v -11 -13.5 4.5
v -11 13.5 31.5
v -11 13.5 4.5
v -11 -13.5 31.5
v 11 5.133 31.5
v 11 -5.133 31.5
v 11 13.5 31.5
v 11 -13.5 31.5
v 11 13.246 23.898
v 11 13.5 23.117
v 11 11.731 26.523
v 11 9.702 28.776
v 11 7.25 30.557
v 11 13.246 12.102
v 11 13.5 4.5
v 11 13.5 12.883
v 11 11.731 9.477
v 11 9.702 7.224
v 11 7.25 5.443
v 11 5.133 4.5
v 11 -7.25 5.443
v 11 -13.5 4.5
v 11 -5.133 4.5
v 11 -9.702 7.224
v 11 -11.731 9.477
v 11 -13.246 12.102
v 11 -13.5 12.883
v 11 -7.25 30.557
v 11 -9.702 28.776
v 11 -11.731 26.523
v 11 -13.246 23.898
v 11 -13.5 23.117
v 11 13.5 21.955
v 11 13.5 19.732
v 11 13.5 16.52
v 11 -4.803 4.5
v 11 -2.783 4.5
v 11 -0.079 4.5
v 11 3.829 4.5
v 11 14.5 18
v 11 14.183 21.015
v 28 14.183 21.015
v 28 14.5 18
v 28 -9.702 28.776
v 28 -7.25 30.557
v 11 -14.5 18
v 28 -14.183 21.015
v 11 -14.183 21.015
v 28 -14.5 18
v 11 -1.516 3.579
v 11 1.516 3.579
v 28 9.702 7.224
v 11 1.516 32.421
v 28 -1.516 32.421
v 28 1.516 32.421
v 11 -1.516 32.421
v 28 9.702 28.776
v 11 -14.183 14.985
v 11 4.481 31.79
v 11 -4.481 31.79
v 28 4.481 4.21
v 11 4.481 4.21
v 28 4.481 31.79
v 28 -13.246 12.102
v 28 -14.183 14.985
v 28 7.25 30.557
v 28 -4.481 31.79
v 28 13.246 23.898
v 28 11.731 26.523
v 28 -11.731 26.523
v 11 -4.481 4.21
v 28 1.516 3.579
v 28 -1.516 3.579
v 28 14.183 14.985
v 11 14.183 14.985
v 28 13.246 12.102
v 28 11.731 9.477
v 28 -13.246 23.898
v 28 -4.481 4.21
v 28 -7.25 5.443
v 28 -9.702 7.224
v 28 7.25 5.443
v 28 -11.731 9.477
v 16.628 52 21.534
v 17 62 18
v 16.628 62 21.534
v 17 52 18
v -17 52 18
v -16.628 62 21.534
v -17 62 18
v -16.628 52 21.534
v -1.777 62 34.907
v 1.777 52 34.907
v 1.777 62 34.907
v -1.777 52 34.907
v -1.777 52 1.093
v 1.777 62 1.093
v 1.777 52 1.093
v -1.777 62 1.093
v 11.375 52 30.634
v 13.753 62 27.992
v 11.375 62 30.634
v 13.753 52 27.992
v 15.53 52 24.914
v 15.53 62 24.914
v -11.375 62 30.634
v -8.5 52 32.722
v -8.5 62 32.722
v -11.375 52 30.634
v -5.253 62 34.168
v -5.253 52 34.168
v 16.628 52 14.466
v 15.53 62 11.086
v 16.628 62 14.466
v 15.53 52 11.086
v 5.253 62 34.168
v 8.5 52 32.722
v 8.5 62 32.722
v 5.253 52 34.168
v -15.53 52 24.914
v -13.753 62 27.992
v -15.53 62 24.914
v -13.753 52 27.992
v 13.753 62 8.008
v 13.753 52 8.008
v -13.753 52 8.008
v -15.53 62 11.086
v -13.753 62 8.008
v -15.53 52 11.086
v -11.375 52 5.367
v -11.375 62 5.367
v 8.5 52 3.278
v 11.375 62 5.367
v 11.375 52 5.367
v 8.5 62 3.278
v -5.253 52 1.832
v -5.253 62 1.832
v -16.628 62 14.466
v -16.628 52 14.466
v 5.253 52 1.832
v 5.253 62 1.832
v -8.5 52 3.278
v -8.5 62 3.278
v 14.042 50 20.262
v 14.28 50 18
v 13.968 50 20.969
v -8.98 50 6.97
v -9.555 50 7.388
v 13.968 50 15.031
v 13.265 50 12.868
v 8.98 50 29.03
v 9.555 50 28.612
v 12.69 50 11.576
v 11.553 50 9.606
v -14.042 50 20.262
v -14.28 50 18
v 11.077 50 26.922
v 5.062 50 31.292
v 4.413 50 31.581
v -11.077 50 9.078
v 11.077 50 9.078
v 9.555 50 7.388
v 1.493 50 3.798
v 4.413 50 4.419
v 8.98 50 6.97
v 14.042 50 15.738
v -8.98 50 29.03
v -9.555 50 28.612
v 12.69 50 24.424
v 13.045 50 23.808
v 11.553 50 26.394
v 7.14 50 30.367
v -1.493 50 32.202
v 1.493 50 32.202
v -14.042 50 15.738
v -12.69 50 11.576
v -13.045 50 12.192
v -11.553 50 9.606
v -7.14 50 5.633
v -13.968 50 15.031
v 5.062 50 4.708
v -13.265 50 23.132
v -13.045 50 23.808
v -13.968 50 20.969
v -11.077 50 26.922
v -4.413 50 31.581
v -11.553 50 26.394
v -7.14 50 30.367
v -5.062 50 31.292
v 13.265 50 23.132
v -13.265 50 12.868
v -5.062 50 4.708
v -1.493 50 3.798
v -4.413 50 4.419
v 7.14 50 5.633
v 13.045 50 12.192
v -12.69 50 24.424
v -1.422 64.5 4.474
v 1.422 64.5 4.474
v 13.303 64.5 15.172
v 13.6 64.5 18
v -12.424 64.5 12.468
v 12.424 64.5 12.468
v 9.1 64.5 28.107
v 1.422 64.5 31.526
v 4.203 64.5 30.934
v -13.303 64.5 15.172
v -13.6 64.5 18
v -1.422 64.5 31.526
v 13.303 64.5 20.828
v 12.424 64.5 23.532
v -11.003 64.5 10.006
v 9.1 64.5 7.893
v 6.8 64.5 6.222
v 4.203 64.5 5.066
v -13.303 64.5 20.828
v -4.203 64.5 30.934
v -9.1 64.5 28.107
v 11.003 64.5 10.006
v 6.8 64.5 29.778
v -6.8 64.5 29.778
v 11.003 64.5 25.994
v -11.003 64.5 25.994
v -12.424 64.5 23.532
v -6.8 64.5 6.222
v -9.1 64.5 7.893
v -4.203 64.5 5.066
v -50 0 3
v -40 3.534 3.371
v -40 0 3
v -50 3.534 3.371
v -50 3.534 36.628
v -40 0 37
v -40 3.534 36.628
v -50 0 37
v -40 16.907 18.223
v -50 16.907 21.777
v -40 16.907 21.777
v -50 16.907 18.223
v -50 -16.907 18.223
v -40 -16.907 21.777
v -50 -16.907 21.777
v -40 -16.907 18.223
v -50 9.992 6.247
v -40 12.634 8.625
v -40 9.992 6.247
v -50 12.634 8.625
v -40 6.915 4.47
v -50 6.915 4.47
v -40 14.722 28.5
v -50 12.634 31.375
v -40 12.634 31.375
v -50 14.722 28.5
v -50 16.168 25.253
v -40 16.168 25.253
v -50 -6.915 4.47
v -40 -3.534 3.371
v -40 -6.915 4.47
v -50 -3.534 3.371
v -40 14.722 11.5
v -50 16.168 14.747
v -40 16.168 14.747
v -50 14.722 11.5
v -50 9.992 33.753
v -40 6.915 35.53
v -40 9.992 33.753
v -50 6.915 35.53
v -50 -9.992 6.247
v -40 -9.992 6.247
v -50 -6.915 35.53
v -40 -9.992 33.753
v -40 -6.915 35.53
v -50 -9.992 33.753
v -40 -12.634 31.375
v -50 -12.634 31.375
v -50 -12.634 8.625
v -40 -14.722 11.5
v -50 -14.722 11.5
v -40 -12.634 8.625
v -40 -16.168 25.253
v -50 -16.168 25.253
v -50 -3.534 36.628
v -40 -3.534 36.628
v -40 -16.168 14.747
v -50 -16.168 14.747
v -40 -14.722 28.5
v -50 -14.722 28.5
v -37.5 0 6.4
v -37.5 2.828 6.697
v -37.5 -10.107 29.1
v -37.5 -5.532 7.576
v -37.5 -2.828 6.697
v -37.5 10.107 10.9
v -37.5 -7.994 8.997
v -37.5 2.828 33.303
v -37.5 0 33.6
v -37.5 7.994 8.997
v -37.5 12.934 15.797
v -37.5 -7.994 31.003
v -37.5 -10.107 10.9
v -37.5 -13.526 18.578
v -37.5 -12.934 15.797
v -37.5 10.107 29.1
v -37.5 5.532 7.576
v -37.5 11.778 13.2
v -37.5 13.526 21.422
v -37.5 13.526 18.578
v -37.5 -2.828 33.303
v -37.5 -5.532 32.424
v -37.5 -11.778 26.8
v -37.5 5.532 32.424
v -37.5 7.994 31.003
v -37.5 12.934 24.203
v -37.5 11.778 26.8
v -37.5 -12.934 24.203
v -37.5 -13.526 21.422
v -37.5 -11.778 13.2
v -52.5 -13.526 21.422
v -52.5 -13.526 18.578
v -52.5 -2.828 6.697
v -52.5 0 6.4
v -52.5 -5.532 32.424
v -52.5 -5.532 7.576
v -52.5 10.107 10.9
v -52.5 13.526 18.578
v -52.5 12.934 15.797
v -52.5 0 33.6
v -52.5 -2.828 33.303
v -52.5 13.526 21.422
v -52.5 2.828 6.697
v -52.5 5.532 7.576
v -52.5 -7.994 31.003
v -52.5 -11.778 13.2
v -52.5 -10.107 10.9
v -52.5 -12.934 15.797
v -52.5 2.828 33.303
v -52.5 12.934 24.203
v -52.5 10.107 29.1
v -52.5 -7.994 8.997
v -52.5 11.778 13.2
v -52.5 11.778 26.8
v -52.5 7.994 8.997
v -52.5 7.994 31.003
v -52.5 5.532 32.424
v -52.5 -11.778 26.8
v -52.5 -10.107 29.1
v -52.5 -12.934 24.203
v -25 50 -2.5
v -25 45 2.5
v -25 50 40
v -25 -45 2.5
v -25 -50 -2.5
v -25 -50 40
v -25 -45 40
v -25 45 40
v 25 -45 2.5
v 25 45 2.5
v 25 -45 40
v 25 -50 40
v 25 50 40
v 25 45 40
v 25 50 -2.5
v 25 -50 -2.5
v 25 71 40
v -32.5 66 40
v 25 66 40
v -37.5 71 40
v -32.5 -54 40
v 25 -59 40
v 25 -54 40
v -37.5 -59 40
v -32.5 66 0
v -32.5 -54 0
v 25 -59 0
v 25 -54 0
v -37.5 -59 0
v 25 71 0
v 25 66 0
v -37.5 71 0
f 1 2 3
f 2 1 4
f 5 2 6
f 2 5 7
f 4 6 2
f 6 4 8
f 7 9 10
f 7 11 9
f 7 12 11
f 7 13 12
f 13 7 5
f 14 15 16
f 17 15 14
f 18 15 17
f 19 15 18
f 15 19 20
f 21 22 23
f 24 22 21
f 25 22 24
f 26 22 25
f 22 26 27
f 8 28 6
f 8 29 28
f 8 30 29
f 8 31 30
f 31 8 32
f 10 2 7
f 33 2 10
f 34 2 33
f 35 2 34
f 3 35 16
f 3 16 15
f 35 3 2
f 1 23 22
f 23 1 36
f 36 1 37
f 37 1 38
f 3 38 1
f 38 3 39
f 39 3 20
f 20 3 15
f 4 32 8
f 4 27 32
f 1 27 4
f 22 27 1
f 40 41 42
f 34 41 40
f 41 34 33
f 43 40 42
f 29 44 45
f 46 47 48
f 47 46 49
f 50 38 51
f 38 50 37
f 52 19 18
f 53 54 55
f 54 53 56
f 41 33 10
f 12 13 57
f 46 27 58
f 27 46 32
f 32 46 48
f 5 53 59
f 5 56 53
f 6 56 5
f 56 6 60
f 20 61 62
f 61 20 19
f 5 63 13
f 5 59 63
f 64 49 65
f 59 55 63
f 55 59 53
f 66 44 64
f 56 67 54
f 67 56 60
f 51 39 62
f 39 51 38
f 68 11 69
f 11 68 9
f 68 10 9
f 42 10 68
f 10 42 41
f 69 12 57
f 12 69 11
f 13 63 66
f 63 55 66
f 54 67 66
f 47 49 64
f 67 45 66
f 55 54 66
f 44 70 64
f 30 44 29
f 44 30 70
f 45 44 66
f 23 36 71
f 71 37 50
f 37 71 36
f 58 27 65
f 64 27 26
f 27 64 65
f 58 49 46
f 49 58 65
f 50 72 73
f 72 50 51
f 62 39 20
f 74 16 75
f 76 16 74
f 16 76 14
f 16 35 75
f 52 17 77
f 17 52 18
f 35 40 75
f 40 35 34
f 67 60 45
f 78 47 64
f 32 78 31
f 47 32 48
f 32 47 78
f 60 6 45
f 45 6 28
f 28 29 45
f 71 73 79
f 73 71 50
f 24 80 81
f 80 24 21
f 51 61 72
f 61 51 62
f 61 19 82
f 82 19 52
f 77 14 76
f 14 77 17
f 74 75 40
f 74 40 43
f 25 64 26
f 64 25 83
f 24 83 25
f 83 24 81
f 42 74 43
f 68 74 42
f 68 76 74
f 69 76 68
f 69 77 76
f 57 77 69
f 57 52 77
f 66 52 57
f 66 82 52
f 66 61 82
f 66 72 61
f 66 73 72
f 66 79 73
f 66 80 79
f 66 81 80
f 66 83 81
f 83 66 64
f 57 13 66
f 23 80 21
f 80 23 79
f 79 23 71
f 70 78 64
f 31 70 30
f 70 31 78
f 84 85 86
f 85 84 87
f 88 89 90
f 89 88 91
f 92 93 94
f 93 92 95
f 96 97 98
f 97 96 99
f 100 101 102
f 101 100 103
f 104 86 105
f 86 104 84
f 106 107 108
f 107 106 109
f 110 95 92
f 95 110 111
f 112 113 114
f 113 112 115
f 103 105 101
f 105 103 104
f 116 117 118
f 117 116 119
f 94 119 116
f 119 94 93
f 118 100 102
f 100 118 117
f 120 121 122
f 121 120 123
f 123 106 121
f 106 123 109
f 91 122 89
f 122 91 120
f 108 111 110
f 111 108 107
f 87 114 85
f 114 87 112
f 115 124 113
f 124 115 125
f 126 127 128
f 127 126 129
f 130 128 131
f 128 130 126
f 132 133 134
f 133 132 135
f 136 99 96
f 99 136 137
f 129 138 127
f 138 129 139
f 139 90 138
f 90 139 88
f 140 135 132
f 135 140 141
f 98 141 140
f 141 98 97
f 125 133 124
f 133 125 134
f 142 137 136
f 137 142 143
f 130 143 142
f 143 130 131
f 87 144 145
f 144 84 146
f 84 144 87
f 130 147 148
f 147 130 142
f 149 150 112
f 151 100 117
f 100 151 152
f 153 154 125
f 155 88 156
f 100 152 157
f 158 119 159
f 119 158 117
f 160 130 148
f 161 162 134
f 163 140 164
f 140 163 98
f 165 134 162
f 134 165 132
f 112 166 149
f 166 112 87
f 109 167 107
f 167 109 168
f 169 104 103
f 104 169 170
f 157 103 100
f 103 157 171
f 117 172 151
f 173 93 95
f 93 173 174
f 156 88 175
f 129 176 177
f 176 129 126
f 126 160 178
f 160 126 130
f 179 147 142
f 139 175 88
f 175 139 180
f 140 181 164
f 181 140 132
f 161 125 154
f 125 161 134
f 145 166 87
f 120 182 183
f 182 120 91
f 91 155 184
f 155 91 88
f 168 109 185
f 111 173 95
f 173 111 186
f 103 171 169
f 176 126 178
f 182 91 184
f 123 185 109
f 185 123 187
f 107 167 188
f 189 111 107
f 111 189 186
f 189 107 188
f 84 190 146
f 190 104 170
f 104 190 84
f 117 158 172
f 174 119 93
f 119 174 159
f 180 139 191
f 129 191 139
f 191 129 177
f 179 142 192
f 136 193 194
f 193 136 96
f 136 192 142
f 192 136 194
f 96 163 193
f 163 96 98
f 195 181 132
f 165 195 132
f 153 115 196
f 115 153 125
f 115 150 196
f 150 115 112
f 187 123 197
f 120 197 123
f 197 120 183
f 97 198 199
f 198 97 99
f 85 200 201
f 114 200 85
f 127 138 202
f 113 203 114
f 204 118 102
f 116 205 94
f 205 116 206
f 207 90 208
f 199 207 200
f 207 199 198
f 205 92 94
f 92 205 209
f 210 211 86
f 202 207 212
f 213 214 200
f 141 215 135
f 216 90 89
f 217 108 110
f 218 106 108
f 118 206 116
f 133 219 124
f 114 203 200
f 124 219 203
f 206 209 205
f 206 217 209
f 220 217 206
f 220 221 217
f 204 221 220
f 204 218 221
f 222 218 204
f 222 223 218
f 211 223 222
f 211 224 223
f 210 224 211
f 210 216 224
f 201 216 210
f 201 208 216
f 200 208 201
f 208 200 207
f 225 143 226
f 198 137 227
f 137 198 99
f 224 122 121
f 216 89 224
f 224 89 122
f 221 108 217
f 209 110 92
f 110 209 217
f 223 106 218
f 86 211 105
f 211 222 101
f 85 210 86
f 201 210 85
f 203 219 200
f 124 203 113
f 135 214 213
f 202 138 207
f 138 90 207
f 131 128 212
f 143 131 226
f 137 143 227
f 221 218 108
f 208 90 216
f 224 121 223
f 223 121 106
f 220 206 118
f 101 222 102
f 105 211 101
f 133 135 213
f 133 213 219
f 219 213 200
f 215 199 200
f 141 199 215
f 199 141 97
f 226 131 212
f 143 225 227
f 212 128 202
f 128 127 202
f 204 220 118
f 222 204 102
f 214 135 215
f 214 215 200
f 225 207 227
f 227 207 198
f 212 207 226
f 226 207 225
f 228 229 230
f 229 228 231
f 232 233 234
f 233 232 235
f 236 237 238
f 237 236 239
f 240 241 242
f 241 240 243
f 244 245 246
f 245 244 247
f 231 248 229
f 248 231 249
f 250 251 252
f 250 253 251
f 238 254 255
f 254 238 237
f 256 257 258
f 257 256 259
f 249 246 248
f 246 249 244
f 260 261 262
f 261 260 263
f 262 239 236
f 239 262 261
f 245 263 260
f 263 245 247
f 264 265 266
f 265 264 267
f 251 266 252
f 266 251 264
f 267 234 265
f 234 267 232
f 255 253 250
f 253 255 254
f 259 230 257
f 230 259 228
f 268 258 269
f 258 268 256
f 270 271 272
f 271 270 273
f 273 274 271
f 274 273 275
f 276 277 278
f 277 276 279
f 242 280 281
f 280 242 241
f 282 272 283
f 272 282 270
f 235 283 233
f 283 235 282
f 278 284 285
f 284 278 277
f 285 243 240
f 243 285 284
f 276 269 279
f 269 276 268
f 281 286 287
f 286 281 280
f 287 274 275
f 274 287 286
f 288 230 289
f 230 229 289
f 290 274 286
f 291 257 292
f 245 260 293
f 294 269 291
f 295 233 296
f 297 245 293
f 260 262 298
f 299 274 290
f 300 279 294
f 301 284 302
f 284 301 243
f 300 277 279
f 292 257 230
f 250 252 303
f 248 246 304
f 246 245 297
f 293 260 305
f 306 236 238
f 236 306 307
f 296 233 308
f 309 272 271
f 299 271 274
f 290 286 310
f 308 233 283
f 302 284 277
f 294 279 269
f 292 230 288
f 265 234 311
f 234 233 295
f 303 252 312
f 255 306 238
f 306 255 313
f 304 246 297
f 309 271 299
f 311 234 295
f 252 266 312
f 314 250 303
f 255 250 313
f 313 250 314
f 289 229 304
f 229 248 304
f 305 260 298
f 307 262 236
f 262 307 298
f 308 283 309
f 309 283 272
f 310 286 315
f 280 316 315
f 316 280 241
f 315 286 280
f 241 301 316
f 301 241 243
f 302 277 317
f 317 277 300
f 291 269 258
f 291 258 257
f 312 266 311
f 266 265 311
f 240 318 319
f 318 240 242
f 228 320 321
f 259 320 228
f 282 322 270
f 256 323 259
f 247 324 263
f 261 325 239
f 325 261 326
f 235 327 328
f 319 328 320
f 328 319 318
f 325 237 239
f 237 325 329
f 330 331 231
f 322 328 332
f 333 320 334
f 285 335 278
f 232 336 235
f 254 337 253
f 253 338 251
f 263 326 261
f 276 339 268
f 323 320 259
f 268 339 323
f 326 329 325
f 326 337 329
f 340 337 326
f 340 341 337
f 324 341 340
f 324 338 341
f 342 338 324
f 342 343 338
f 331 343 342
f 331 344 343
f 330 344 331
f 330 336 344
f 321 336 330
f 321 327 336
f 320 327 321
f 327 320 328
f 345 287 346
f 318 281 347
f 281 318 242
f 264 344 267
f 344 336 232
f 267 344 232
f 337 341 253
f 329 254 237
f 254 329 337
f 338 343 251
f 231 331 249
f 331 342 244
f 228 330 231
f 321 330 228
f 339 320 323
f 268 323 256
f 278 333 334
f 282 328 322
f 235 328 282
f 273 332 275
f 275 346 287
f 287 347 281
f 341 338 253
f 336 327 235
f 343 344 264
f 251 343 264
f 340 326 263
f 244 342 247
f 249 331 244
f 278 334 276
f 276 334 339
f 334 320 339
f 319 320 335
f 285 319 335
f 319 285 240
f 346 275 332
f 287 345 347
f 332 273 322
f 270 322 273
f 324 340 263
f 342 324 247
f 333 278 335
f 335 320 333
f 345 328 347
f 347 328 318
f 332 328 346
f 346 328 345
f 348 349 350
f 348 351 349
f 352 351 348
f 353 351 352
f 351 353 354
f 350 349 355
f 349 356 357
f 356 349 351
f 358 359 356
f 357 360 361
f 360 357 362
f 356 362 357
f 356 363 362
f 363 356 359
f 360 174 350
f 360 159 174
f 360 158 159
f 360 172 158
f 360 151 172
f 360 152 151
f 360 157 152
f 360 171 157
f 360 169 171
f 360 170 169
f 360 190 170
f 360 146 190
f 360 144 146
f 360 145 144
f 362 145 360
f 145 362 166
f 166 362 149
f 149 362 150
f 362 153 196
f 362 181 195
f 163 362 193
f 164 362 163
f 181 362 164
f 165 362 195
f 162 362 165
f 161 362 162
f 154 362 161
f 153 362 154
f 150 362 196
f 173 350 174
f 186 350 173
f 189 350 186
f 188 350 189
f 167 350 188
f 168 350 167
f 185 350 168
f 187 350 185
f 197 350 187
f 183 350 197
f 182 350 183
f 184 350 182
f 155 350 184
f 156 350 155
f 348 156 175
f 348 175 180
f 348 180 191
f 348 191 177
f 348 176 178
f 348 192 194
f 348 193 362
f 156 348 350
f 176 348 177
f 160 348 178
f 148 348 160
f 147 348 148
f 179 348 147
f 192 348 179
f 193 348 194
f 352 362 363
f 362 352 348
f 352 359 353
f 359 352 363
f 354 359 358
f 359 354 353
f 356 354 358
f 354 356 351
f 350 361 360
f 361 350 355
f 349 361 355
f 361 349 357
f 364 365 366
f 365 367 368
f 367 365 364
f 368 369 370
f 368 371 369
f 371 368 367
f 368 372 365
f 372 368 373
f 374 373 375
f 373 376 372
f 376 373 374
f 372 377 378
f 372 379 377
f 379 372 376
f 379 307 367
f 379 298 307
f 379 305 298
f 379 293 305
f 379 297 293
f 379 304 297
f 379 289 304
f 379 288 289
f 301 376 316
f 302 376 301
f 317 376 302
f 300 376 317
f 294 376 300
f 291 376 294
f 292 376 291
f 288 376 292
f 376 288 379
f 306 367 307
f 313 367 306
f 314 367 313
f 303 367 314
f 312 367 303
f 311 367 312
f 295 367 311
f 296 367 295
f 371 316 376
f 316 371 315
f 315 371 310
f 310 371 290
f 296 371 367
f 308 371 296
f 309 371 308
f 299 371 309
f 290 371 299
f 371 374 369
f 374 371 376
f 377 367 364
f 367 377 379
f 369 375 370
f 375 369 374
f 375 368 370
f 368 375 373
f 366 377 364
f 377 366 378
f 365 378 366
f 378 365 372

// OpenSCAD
module ximea_camera()
{
    // body
    cube([22, 27, 27], center = true);

    // lens
    translate([11, 0, 0]) {
        rotate([90, 0, 90]) {
            cylinder(17, 14.5, 14.5);
        }
    }
};

module gimbal_motor()
{
    inner_length = 10.0;
    taper_length = 2.5;
    diameter = 34.0;

    // main body
    cylinder(inner_length, diameter / 2.0, diameter / 2.0, center = true);

    // top taper
    translate([0, 0, inner_length / 2.0]) {
        cylinder(taper_length, diameter / 2.0, diameter / 2.5);
    }

    // bottom taper
    translate([0, 0, -inner_length / 2.0]) {
        rotate([180, 0, 0]) {
            cylinder(taper_length, diameter / 2.0, diameter / 2.5);
        }
    }
};

module gimbal_bar(width, depth, height, thickness)
{
    // bottom plate
    cube([depth, width, thickness], center = true);

    // right vertical plate
    translate([-depth / 2.0, -width / 2.0]) {
        cube([depth, thickness, height]);
    }

    // left vertical plate
    translate([-depth / 2.0, width / 2.0 - thickness]) {
        cube([depth, thickness, height]);
    }
};


// run
translate([0, 0, 18]) {
    color([1, 0, 0]) {
        ximea_camera();
    }
};

// pitch motor
translate([0, 57, 18]) {
    rotate([90, 0, 0]) {
        color([0, 1, 0]) {
            gimbal_motor();
        }
    }
}

// roll motor
translate([-45, 0, 20]) {
    rotate([0, 90, 0]) {
        color([0, 1, 0]) {
            gimbal_motor();
        }
    }
}

// pitch bar
translate([0, 0, 0]) {
    gimbal_bar(100, 50, 40, 5);
}

// roll bar
translate([-35, 6, 20]) {
    rotate([0, 90, 0]) {
        gimbal_bar(130, 40, 60, 5);
    }
}
